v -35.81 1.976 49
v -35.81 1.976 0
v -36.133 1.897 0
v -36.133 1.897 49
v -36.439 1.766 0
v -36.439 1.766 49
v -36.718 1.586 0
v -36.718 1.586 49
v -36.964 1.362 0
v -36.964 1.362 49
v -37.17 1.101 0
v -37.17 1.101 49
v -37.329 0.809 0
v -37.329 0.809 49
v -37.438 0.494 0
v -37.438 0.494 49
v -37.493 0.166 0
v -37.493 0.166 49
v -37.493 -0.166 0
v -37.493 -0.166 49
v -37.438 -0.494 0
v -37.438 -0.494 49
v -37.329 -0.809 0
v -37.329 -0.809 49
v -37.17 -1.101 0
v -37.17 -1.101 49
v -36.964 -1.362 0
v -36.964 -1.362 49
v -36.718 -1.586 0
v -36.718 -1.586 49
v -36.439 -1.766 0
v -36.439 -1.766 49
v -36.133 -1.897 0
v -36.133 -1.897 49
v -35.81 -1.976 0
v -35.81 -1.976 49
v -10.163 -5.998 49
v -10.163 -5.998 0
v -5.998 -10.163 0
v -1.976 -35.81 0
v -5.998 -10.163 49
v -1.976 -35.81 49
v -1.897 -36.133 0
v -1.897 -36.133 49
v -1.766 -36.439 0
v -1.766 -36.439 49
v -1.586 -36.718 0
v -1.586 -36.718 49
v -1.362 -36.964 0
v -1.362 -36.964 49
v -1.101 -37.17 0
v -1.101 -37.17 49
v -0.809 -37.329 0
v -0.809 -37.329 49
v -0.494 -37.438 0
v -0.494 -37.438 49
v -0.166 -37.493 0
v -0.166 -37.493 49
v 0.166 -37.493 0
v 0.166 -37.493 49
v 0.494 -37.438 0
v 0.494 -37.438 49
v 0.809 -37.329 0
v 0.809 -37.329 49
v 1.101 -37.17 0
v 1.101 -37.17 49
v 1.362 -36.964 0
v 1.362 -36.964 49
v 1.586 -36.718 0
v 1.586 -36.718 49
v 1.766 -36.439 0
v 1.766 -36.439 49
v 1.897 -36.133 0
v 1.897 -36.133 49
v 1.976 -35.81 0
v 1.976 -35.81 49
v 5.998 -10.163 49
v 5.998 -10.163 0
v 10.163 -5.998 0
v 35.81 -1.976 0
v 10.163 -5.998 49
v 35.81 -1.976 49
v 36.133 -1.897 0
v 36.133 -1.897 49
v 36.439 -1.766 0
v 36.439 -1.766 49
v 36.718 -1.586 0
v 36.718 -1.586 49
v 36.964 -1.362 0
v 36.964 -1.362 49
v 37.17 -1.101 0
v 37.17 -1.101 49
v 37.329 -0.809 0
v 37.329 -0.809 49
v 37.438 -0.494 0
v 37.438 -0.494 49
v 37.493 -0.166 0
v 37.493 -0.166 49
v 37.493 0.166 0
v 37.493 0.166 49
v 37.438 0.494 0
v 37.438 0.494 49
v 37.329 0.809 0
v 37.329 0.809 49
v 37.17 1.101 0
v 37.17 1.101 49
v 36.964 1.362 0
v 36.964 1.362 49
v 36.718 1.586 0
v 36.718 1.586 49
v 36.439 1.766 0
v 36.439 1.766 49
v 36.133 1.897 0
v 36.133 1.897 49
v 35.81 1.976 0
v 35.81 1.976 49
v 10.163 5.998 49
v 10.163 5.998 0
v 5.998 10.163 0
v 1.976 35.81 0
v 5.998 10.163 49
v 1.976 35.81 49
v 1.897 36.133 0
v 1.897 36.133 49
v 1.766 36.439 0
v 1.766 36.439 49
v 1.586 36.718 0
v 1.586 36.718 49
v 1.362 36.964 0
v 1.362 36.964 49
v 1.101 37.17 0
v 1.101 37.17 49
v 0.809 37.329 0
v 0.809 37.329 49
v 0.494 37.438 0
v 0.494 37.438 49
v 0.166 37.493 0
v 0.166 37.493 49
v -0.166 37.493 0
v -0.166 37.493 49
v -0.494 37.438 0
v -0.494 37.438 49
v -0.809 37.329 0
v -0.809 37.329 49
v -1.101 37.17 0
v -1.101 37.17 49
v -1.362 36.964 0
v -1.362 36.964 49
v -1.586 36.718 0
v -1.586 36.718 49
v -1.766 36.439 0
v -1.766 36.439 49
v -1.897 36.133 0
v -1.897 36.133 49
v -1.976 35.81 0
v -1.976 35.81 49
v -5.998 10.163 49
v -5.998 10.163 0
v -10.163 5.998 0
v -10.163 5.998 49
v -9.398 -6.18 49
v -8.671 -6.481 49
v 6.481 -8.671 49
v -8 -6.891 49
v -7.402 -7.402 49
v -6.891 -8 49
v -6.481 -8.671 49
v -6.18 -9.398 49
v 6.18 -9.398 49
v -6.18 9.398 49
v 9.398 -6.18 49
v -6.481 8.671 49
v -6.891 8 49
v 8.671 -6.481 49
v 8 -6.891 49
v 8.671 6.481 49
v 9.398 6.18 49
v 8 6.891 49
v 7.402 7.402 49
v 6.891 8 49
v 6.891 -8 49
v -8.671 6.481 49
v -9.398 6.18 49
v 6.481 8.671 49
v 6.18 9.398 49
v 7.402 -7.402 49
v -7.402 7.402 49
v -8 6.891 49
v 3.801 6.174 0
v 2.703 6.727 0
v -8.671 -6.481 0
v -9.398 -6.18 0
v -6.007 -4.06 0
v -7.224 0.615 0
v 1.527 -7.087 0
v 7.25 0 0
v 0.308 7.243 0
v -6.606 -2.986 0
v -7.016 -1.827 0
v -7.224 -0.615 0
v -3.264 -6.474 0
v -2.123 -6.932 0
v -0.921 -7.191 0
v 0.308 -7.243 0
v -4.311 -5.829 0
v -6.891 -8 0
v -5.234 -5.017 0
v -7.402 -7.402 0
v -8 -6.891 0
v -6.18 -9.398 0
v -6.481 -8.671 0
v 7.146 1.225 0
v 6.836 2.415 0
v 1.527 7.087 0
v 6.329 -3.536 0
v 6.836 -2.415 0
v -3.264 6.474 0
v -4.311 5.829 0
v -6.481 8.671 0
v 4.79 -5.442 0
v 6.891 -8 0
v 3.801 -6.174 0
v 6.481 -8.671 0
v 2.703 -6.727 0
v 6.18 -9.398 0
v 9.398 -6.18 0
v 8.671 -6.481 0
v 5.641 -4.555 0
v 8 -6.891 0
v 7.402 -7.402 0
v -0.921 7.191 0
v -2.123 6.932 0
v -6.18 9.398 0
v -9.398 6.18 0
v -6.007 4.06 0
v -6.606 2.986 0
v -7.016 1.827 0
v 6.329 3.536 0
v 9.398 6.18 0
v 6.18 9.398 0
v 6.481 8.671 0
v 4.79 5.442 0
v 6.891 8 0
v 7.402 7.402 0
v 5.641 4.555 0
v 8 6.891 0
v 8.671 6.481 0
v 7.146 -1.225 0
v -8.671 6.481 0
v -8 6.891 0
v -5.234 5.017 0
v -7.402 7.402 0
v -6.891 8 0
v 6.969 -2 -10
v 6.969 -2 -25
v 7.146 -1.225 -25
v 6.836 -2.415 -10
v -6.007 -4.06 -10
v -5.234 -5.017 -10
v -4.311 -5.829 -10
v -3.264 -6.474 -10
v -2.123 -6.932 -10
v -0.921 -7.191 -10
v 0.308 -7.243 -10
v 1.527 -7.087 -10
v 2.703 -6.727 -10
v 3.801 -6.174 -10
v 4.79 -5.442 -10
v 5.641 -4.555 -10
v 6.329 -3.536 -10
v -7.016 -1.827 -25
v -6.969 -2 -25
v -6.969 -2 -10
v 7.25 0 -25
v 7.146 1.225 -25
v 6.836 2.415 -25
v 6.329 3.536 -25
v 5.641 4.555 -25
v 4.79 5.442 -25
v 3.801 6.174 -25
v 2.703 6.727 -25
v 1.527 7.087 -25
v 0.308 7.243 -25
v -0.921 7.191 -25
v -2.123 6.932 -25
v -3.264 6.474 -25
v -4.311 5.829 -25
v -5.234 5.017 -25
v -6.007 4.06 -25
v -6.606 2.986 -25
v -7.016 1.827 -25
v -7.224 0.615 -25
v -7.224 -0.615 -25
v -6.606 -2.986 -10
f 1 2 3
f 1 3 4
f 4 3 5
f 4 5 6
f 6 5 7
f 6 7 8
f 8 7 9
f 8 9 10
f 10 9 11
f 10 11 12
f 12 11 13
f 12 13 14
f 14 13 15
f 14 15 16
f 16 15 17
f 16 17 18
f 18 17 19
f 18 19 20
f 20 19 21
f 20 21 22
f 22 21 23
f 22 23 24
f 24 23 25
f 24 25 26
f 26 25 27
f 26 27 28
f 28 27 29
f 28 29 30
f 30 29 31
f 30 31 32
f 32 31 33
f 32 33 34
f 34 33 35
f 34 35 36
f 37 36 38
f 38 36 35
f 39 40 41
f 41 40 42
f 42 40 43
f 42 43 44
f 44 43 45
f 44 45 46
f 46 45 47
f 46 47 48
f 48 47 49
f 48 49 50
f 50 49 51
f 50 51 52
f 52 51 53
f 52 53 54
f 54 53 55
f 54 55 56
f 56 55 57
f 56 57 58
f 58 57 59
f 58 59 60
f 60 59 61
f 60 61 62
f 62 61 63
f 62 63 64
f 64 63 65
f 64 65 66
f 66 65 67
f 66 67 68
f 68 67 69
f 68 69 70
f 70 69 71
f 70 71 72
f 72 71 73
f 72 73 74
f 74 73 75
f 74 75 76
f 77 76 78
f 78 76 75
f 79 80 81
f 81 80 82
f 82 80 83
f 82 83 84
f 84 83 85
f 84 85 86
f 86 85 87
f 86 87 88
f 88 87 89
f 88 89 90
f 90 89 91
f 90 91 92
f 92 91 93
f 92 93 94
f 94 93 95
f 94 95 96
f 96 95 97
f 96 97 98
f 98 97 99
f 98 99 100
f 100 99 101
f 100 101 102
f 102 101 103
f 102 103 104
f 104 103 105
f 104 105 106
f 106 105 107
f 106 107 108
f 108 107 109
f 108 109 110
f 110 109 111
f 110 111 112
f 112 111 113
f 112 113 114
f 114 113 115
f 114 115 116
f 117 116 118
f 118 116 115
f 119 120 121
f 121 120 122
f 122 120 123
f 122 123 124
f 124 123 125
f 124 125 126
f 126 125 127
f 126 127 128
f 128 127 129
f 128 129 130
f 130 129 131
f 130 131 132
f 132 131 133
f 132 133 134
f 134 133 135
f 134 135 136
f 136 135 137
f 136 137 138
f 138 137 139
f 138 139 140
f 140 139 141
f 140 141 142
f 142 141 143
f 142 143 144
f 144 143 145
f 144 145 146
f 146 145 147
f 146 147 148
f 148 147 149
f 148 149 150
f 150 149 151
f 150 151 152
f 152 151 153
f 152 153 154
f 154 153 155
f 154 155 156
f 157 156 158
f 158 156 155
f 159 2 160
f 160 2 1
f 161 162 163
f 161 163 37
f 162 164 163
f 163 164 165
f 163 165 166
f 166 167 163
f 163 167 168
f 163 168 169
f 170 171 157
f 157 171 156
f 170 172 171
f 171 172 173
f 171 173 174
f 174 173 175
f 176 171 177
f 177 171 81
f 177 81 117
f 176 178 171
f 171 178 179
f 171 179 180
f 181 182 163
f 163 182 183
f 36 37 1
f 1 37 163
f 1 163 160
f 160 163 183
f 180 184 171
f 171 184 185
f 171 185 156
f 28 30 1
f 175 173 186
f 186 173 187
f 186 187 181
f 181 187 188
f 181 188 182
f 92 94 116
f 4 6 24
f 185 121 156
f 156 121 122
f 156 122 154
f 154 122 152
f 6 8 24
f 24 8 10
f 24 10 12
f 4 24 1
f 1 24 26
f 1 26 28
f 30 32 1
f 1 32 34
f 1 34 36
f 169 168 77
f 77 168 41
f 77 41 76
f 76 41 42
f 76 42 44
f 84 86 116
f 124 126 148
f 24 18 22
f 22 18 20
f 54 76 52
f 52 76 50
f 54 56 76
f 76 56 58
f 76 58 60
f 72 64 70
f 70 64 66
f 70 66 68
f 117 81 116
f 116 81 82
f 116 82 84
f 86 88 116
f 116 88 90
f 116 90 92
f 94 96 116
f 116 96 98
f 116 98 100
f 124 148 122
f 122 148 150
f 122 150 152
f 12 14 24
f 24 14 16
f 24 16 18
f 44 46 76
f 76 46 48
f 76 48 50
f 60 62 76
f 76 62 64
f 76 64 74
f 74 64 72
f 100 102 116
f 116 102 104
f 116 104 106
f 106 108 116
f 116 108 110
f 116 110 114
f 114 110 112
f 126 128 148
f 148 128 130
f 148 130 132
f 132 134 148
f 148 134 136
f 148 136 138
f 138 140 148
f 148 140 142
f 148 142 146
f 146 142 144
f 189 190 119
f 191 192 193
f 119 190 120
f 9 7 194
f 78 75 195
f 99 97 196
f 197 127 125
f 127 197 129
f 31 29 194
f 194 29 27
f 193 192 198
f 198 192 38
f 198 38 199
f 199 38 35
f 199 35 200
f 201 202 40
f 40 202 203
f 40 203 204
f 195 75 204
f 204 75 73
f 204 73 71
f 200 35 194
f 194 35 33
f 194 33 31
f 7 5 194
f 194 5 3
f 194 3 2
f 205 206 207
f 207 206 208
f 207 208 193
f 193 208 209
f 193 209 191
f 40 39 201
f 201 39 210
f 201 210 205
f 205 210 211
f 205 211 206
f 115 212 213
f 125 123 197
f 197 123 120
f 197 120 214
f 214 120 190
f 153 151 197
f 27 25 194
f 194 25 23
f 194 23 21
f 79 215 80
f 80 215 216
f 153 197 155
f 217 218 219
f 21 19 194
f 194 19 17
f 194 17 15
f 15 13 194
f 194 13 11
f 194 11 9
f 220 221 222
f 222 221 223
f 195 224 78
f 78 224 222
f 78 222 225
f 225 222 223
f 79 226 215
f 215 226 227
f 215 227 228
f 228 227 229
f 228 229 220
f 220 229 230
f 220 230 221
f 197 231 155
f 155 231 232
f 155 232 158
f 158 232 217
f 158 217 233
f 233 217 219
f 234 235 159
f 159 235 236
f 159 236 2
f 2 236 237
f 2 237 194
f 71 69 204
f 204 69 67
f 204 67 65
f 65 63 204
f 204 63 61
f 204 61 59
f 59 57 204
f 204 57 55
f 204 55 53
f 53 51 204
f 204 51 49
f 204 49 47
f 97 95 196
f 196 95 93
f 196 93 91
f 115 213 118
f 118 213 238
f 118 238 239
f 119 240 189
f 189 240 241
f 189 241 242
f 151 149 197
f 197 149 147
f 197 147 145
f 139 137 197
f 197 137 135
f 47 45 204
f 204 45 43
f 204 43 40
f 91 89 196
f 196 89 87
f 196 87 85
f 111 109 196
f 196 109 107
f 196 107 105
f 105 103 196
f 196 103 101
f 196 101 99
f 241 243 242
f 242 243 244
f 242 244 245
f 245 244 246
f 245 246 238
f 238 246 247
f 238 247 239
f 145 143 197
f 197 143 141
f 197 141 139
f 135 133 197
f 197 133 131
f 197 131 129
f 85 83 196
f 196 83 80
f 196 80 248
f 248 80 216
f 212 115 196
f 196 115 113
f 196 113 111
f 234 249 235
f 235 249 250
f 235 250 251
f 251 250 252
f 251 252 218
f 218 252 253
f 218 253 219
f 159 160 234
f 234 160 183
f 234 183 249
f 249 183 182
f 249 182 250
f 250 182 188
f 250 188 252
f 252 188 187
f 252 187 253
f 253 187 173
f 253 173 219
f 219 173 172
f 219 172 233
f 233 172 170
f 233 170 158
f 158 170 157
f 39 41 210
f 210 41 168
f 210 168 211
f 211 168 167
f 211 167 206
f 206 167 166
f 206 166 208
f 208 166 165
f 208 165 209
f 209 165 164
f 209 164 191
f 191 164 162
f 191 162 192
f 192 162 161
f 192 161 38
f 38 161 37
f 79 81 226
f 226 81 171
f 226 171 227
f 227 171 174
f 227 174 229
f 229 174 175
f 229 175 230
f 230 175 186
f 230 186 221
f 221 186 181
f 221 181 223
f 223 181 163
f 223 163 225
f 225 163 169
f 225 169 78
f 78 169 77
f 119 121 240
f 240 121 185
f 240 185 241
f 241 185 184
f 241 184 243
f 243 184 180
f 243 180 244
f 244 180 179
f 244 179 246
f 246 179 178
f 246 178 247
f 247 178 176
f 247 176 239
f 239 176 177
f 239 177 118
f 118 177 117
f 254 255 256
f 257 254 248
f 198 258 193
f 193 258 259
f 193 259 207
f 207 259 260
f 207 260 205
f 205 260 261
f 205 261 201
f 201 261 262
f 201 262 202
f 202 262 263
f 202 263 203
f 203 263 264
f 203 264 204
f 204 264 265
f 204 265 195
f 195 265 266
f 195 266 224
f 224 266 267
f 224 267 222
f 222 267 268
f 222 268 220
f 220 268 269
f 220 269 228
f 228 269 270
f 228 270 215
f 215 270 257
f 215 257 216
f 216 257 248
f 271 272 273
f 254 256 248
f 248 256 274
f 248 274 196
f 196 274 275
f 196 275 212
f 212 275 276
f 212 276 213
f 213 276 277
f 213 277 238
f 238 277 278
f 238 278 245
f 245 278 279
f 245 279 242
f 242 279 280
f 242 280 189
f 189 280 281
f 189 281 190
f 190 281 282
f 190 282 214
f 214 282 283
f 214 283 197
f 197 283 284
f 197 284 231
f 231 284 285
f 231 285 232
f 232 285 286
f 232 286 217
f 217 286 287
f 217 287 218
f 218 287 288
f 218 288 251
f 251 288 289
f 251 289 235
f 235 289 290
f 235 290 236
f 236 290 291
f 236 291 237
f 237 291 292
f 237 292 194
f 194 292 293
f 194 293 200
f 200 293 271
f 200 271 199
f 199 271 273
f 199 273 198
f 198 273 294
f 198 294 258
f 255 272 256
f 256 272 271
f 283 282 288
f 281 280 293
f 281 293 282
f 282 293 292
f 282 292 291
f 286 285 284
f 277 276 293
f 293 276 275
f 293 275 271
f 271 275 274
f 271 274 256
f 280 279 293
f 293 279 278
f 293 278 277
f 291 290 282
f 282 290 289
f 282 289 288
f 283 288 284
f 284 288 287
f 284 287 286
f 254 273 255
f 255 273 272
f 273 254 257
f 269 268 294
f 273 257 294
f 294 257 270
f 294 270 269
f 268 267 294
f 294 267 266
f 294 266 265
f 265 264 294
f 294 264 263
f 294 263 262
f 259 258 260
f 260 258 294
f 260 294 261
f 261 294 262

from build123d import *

# Parameters (mm, degrees)
BOSS_EXTRUDE1_DEPTH = 49
FILLET1_R           = 5
SKETCH2_R           = 7.25
BOSS_EXTRUDE2_DEPTH = 25
CUT_EXTRUDE1_START  = -15
CUT_EXTRUDE1_DEPTH  = 15


with BuildPart() as part:
    # Sketch1 → Boss-Extrude1 (new body)
    with BuildSketch(Plane.XY):
        with BuildLine():
            Line((-6.562511766, 6.562511766), (-1.975851033, 35.809859155))
            ThreePointArc((-1.975851033, 35.809859155), (0, 37.5), (1.975851033, 35.809859155))
            Line((1.975851033, 35.809859155), (6.562511766, 6.562511766))
            Line((6.562511766, 6.562511766), (35.809859155, 1.975851033))
            ThreePointArc((35.809859155, 1.975851033), (37.5, 0), (35.809859155, -1.975851033))
            Line((35.809859155, -1.975851033), (6.562511766, -6.562511766))
            Line((6.562511766, -6.562511766), (1.975851033, -35.809859155))
            ThreePointArc((1.975851033, -35.809859155), (0, -37.5), (-1.975851033, -35.809859155))
            Line((-1.975851033, -35.809859155), (-6.562511766, -6.562511766))
            Line((-6.562511766, -6.562511766), (-35.809859155, -1.975851033))
            ThreePointArc((-35.809859155, -1.975851033), (-37.5, 0), (-35.809859155, 1.975851033))
            Line((-35.809859155, 1.975851033), (-6.562511766, 6.562511766))
        make_face()
    extrude(amount=BOSS_EXTRUDE1_DEPTH)

    # Fillet1
    fillet1_edges = [part.edges().sort_by_distance(p)[0] for p in [
        (-6.562511766, 6.562511766, 24.5),
        (6.562511766, 6.562511766, 24.5),
        (6.562511766, -6.562511766, 24.5),
        (-6.562511766, -6.562511766, 24.5),
    ]]
    fillet(fillet1_edges, radius=FILLET1_R)

    # Sketch2 → Boss-Extrude2 (add)
    with BuildSketch(Plane(origin=(0, 0, 0), x_dir=(-1, 0, 0), z_dir=(0, 0, -1))):
        with Locations(Location((0, 0, 0), (0, 0, 180))):
            Circle(SKETCH2_R)
    extrude(amount=BOSS_EXTRUDE2_DEPTH)

    # Sketch3 → Cut-Extrude1 (cut)
    with BuildSketch(Plane(origin=(0, 0, -25), x_dir=(-1, 0, 0), z_dir=(0, 0, -1)).offset(CUT_EXTRUDE1_START)):
        with BuildLine():
            Line((6.968679932, -2), (-6.968679932, -2))
            ThreePointArc((-6.968679932, -2), (0, -7.25), (6.968679932, -2))
        make_face()
    extrude(amount=CUT_EXTRUDE1_DEPTH, mode=Mode.SUBTRACT)


solid = part.part
